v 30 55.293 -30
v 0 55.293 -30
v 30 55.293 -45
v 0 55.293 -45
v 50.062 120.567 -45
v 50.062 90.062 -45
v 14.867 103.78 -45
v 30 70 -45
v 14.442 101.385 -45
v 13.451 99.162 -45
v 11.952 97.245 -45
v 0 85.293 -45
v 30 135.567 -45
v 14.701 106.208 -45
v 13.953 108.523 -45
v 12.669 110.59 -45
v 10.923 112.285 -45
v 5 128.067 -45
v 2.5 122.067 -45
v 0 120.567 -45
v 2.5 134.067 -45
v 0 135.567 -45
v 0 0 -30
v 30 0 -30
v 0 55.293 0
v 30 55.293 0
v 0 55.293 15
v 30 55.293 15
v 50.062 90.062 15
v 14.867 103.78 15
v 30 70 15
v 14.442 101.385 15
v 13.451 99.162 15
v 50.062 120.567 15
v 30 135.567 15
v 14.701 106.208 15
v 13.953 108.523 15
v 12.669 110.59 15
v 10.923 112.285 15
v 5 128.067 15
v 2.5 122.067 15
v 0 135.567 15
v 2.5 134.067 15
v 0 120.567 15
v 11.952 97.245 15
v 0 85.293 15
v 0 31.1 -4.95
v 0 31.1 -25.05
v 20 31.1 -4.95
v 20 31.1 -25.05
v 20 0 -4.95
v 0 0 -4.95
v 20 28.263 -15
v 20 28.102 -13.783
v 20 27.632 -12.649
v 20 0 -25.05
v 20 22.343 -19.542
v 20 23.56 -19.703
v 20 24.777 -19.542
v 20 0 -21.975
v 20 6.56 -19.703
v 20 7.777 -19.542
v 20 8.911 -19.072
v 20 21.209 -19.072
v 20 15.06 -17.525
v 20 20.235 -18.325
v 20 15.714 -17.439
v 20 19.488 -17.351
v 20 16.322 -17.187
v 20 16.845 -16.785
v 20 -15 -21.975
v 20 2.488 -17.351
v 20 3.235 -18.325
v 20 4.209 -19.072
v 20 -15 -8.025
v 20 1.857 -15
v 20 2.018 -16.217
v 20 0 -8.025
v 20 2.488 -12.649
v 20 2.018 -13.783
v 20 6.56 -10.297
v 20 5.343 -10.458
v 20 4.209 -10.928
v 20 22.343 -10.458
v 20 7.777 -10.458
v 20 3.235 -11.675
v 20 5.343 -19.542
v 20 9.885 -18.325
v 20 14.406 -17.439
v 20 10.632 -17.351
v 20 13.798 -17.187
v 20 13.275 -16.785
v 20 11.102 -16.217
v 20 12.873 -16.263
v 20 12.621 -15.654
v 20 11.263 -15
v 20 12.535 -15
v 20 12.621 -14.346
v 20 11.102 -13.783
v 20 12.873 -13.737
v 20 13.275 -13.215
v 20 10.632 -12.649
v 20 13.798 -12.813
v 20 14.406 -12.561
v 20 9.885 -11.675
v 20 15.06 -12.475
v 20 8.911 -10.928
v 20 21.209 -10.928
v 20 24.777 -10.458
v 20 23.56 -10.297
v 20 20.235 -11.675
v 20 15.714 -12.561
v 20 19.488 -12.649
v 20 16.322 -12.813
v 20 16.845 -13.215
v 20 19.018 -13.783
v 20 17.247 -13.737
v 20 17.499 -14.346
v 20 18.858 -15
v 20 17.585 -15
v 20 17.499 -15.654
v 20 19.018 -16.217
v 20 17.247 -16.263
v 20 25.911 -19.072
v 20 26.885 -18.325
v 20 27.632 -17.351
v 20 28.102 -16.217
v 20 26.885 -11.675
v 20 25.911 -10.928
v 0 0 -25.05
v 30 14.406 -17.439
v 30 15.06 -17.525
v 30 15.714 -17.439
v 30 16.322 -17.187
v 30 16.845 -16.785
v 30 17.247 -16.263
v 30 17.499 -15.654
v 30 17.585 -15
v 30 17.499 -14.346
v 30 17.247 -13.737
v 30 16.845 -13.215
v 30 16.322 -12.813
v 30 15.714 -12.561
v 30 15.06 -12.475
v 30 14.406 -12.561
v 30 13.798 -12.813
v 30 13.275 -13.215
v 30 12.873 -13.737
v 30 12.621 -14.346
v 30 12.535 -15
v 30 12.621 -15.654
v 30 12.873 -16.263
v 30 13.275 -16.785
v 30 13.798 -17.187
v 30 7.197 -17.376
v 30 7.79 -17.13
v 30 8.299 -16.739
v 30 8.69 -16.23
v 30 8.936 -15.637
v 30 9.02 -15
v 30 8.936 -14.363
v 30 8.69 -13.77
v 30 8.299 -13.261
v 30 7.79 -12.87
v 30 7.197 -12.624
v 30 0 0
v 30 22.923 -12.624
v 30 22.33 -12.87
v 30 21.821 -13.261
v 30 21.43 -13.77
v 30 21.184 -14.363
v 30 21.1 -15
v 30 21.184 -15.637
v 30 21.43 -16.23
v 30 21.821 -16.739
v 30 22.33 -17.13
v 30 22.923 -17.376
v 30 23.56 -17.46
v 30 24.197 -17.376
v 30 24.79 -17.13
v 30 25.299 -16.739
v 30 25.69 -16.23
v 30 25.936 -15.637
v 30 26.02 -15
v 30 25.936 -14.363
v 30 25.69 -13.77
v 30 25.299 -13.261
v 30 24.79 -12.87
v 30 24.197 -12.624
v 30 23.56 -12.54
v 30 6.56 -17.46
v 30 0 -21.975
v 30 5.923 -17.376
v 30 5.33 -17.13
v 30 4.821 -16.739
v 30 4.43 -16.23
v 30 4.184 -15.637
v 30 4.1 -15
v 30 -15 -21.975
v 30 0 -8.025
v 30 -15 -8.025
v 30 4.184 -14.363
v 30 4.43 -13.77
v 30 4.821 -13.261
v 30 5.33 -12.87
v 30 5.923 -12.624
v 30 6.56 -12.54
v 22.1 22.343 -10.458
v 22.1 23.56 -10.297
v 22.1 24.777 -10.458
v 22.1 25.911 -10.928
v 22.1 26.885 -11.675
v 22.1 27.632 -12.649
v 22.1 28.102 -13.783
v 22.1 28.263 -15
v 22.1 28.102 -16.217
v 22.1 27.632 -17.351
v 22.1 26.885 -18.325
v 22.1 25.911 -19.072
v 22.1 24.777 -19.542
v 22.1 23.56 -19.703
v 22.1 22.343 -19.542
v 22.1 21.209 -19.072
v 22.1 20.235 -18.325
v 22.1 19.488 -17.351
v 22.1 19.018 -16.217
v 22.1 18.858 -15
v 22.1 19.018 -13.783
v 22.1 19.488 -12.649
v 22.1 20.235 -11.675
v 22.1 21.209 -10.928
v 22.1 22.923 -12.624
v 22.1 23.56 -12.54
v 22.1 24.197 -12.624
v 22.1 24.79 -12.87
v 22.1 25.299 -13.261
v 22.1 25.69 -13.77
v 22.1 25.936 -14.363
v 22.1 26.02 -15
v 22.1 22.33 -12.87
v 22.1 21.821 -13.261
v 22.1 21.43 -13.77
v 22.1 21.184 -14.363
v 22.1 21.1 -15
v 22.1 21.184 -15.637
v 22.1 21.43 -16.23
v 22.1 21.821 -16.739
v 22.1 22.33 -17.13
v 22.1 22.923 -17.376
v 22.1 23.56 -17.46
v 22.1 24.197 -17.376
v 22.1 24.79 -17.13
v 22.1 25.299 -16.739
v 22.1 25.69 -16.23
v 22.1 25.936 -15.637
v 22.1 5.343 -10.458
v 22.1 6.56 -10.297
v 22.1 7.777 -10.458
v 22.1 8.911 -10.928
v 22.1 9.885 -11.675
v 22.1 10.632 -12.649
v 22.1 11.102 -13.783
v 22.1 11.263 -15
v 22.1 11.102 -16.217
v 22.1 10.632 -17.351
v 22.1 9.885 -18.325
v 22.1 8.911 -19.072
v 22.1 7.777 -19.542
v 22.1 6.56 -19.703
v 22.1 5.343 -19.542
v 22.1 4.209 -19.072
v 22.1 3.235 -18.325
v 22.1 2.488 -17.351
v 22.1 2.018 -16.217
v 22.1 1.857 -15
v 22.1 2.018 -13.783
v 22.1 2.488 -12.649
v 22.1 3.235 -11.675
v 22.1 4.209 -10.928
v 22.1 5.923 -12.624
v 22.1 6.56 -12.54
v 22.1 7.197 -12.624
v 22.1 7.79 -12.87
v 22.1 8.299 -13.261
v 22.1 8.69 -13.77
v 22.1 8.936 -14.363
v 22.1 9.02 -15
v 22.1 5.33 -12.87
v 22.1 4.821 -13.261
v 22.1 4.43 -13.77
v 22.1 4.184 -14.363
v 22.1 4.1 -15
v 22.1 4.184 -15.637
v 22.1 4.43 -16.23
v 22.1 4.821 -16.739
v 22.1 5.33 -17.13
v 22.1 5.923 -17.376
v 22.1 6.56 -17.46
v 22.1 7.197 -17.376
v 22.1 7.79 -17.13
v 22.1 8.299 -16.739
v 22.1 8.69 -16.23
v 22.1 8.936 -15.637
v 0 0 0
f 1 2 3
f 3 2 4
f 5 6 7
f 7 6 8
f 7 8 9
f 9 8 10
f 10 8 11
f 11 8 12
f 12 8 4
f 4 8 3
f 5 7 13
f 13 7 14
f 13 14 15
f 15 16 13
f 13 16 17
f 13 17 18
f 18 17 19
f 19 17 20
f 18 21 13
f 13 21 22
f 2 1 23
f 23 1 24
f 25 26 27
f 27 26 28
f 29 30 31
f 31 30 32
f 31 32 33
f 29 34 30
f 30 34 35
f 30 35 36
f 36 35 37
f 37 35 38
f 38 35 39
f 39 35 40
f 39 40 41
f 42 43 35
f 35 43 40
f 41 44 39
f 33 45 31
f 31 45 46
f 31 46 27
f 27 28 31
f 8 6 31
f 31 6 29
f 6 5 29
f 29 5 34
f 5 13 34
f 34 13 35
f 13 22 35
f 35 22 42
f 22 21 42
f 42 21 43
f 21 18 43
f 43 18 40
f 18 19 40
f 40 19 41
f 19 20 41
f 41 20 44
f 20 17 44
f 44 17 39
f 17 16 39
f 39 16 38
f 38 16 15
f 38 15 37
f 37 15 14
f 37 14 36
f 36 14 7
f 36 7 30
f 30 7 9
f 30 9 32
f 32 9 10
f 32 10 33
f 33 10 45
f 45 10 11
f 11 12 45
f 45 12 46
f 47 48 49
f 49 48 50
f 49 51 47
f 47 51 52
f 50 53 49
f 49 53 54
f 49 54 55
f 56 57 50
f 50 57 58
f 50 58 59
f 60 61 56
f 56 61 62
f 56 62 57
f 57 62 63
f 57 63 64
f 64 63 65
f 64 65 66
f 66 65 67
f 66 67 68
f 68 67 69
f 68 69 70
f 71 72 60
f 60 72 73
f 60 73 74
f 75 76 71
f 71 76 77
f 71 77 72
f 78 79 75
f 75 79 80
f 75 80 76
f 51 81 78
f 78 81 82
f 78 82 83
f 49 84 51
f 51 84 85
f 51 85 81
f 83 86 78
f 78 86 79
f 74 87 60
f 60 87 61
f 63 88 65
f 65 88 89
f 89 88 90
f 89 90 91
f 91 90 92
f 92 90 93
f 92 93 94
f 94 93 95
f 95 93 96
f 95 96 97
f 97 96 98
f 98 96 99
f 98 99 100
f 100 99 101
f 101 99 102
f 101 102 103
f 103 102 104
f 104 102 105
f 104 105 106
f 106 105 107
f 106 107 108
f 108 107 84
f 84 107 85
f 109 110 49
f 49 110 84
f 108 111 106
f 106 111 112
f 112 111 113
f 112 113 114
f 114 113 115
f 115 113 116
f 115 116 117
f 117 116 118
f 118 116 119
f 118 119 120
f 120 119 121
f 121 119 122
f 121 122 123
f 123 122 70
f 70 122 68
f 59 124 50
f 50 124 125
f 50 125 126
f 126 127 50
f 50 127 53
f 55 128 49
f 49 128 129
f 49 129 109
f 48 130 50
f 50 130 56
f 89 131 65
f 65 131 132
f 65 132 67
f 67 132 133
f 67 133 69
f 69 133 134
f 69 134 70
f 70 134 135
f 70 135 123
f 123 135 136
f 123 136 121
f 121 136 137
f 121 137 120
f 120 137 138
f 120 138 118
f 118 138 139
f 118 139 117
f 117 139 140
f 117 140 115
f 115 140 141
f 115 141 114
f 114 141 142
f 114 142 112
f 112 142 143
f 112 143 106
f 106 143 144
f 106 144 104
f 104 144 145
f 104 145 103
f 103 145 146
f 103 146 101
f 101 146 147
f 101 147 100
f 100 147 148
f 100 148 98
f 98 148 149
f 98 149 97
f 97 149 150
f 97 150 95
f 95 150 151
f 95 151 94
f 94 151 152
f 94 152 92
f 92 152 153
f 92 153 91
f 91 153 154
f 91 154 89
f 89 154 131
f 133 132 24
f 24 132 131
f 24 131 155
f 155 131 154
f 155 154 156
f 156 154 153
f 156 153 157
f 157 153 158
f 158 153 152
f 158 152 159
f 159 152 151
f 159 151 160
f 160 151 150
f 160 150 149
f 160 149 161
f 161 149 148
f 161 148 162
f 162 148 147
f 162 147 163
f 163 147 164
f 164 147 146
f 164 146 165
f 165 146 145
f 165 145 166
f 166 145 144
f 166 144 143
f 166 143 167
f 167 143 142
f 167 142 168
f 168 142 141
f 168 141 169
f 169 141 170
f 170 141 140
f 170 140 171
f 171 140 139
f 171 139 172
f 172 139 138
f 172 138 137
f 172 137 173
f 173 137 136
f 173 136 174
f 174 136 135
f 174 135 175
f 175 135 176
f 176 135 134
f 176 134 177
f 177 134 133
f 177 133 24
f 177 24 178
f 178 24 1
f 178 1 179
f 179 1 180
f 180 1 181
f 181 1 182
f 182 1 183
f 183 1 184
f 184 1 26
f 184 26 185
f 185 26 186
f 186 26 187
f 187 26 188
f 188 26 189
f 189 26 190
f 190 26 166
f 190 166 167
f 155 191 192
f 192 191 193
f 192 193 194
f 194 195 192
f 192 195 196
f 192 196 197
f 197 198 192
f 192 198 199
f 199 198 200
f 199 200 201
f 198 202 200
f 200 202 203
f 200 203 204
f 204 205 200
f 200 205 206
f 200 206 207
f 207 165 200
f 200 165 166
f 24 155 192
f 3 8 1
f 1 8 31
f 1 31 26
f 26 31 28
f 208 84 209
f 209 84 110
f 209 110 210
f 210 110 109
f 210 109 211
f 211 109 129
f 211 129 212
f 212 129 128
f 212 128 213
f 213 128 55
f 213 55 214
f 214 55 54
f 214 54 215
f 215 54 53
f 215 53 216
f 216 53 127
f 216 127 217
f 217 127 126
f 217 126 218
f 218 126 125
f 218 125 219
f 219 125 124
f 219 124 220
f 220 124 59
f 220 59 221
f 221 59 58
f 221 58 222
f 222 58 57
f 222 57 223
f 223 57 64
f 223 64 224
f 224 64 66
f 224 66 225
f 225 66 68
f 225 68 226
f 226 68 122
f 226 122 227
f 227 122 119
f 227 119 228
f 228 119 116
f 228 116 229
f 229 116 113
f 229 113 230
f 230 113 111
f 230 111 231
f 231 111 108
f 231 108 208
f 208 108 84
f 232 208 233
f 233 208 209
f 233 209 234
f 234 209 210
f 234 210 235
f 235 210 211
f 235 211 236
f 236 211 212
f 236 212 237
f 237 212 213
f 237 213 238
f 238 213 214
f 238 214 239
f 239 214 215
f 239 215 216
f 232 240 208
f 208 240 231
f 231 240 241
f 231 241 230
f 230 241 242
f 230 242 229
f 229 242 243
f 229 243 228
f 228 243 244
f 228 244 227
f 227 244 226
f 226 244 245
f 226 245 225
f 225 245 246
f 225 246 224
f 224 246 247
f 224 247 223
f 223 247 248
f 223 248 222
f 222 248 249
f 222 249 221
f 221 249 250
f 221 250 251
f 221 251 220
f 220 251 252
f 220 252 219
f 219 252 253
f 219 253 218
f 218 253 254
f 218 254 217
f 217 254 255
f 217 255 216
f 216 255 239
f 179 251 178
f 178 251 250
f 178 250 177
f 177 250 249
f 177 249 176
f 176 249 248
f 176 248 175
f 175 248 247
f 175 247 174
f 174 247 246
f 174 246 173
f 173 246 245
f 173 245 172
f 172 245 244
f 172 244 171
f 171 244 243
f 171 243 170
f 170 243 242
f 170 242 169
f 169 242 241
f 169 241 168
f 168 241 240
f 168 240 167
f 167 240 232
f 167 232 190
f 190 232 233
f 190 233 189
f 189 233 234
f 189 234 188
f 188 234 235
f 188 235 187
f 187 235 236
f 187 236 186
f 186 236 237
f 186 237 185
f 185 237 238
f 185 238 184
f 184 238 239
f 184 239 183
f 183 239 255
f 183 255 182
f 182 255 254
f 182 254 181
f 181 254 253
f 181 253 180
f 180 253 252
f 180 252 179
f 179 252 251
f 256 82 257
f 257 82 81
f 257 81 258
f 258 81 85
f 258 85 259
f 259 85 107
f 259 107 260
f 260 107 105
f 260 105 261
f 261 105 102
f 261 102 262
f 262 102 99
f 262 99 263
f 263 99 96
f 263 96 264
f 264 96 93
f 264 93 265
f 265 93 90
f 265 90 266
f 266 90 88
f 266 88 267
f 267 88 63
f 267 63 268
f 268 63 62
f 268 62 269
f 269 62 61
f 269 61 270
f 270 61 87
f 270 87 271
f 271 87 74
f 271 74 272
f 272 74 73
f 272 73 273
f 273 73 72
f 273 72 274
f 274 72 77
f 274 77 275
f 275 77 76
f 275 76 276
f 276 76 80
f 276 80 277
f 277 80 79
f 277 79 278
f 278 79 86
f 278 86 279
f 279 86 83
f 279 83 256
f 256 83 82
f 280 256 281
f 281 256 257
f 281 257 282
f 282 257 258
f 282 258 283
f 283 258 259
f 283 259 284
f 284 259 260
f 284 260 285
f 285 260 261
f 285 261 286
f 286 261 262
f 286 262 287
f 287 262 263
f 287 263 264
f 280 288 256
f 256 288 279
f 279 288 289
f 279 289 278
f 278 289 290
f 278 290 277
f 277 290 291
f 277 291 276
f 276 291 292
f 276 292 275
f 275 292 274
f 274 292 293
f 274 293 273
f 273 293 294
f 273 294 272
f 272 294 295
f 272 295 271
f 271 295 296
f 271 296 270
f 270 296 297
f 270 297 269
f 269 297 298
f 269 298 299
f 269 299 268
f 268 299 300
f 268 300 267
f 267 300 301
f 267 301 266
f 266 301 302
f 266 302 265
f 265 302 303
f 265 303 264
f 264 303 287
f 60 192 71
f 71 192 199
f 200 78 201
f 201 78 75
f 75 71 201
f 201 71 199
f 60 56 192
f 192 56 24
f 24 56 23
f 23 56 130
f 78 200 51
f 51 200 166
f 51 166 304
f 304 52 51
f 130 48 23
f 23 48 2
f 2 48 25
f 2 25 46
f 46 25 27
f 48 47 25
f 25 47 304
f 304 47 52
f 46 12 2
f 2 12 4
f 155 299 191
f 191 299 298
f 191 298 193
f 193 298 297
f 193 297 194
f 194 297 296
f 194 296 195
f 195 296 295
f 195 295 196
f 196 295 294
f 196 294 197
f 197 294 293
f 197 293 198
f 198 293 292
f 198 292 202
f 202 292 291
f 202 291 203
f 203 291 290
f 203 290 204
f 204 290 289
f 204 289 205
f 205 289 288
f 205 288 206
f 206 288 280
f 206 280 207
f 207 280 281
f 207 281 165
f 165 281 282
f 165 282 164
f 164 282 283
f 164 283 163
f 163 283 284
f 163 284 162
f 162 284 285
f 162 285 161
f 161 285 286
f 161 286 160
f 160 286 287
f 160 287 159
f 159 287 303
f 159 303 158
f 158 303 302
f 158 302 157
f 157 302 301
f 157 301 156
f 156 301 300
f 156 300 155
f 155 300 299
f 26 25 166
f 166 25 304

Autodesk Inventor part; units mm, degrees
ref_plane "YZ Plane" through (0, 0, 0) normal (1, 0, 0) x (0, 1, 0)
ref_plane "XZ Plane" through (0, 0, 0) normal (0, 1, 0) x (-1, 0, 0)
sketch "Sketch1" plane through (0, 0, 0) normal (0, 0, 1) x (1, 0, 0)
  line L0 (0, 0) -> (25, 0)
  line L1 (25, 0) -> (25, 40)
  line L2 (25, 40) -> (0, 40)
  line L3 (0, 40) -> (0, 0)
  dimension "d1" = 25
  dimension "d2" = 40
  dimension "d3" = 25
extrude "Extrusion1" add sketch "Sketch1" against normal blind 30
sketch "Sketch2" plane through (25, 0, 0) normal (1, 0, 0) x (0, 0, -1)
  line L0 (0, 0) -> (30, 0) projected
  circle A0 centre (15, 6.56) radius 2.46
extrude "Extrusion2" cut sketch "Sketch2" against normal blind 30
sketch "Sketch3" plane through (0, 0, 0) normal (-1, 0, 0) x (0, 0, 1)
  line L0 (0, 0) -> (-30, 0) projected
  line L1 (-25.05, 0) -> (-4.95, 0)
  line L2 (-4.95, 0) -> (-4.95, 33.12)
  line L3 (-4.95, 33.12) -> (-25.05, 33.12)
  line L4 (-25.05, 33.12) -> (-25.05, 0)
  dimension "d11" = 20.1
extrude "Extrusion3" cut sketch "Sketch3" against normal blind 20
sketch "Sketch4" plane through (0, 0, 0) normal (0, -1, 0) x (1, 0, 0)
  line L0 (20, -4.95) -> (20, -25.05) projected
  line L1 (20, -15) -> (25, -15)
  line L2 (25, 0) -> (25, -30) projected
  line L3 (20, -8.025) -> (25, -8.025)
  line L4 (25, -8.025) -> (25, -21.975)
  line L5 (25, -21.975) -> (20, -21.975)
  line L6 (20, -21.975) -> (20, -8.025)
  line L7 (20, -8.025) -> (25, -21.975) construction
  line L8 (25, -8.025) -> (20, -21.975) construction
  line L9 (25, -12.54) -> (25, -17.46) projected
  point P0 (0, 0)
  point P1 (22.5, -15)
  dimension "d14" = 13.95
extrude "Extrusion4" add sketch "Sketch4" along normal blind 15
sketch "Sketch5" plane through (20, 0, 0) normal (-1, 0, 0) x (0, 0, 1)
  circle A0 centre (-15, 6.56) radius 2.46 projected
  circle A1 centre (-15, 6.56) radius 4.7025
  circle A2 centre (-15, 6.56) radius 2.46 projected
  circle A3 centre (-15, 6.56) radius 2.46
  point P0 (0, 0)
  dimension "d17" = 9.405
extrude "Extrusion5" cut sketch "Sketch5" against normal blind 2.1
sketch "Sketch6" plane through (25, 0, 0) normal (1, 0, 0) x (0, 0, -1)
  circle A0 centre (15, 6.56) radius 4.7025 projected
  line L0 (15, 6.56) -> (15, 23.56)
  circle A1 centre (15, 23.56) radius 2.46
  point P0 (0, 0)
  dimension "d20" = 17
  dimension "d21" = 4.92
extrude "Extrusion6" cut sketch "Sketch6" against normal blind 10 contours A1
sketch "Sketch7" plane through (20, 0, 0) normal (-1, 0, 0) x (0, 0, 1)
  circle A0 centre (-15, 23.56) radius 2.46 projected
  circle A1 centre (-15, 23.56) radius 4.7025
  point P0 (0, 0)
  dimension "d24" = 9.405
extrude "Extrusion7" cut sketch "Sketch7" against normal blind 2.1
sketch "Sketch9" plane through (25, 0, 0) normal (1, 0, 0) x (0, 0, -1)
  circle A0 centre (15, 6.56) radius 2.46 projected
  circle A1 centre (15, 6.56) radius 2.46
  circle A2 centre (15, 23.56) radius 2.46 projected
  circle A3 centre (15, 23.56) radius 2.46
  line L0 (30, 40) -> (30, 0) projected
  line L1 (30, 0) -> (30, 40)
  line L2 (30, 40) -> (0, 40)
  line L3 (0, 40) -> (0, 0)
  line L4 (0, 0) -> (8.025, 0) projected
  line L5 (21.975, 0) -> (21.975, -15)
  line L6 (21.975, -15) -> (8.025, -15)
  line L7 (8.025, -15) -> (8.025, 0)
  line L8 (0, 0) -> (8.025, 0)
  line L9 (21.975, 0) -> (30, 0)
extrude "Extrusion8" add sketch "Sketch9" along normal blind 5
sketch "Sketch10" plane through (0, 40, 0) normal (0, 1, 0) x (1, 0, 0)
  line L0 (0, 30) -> (30, 30) projected
  line L1 (30, 0) -> (0, 0) projected
  line L2 (0, 30) -> (30, 30)
  line L3 (30, 30) -> (30, 0)
  line L4 (30, 0) -> (0, 0)
  line L5 (0, 0) -> (0, 30)
extrude "Extrusion9" add sketch "Sketch10" along normal blind 30
sketch "Sketch12" plane through (30, 0, 0) normal (1, 0, 0) x (0, 0, -1)
  circle A0 centre (15, 6.56) radius 2.46 projected
  line L0 (15, 6.56) -> (15, 15.06)
  circle A1 centre (15, 15.06) radius 2.525
  point P0 (0, 0)
  dimension "d31" = 8.5
  dimension "d33" = 5.05
extrude "Extrusion10" cut sketch "Sketch12" against normal blind 30 contours A1
sketch "Sketch15" plane through (0, 0, -25.05) normal (-1, 0, 0) x (0, 0, 1)
  line L0 (0, 33.12) -> (20.1, 33.12) projected
  line L1 (20.1, 33.12) -> (20.1, 0) projected
  line L2 (0, 33.12) -> (20.1, 33.12)
  line L3 (20.1, 33.12) -> (20.1, 31.1)
  line L4 (20.1, 31.1) -> (0, 31.1)
  line L5 (0, 31.1) -> (0, 33.12)
  point P0 (25.05, 0)
  dimension "d57" = 2.02
extrude "Extrusion13" add sketch "Sketch15" against normal blind 20
sketch "Sketch17" plane through (0, 0, 0) normal (0, 0, 1) x (1, 0, 0)
  line L0 (0, 70) -> (30, 70) projected
  line L1 (30, 70) -> (50.0622, 90.0622)
  line L2 (30, 70) -> (80, 70) construction
  line L3 (11.9522, 97.2454) -> (0, 85.2932)
  line L4 (0, 70) -> (0, 85.2932)
  line L5 (0, 70) -> (0, 0) projected
  line L6 (0, 70) -> (30, 70)
  line L7 (10.923, 112.2849) -> (0, 120.567)
  line L8 (2.5, 134.067) -> (0, 135.567)
  line L9 (2.5, 134.067) -> (5, 128.067)
  line L10 (2.5, 122.067) -> (0, 120.567)
  line L11 (2.5, 122.067) -> (5, 128.067)
  line L12 (50.0622, 105.3553) -> (50.0622, 120.567)
  line L13 (50.0622, 105.3553) -> (50.0622, 90.0622)
  line L14 (0, 135.567) -> (30, 135.567)
  line L15 (30, 135.567) -> (50.0622, 120.567)
  arc A0 (11.9522, 97.2454) -> (10.923, 112.2849) centre (4.8811, 104.3165) ccw
  dimension "d61" = 45
  dimension "d62" = 32.0271
  dimension "d71" = 30
  dimension "d72" = 10
extrude "Extrusion14" add sketch "Sketch17" against normal blind 30
sketch "Sketch19" plane through (0, 0, 0) normal (0, 0, 1) x (1, 0, 0)
  line L0 (30, 0) -> (30, 70) projected
  line L1 (30, 70) -> (50.0622, 90.0622) projected
  line L2 (30, 70) -> (50.0622, 90.0622)
  line L3 (50.0622, 120.567) -> (50.0622, 90.0622) projected
  line L4 (50.0622, 90.0622) -> (50.0622, 120.567)
  line L5 (30, 135.567) -> (50.0622, 120.567) projected
  line L6 (50.0622, 120.567) -> (30, 135.567)
  line L7 (0, 135.567) -> (30, 135.567) projected
  line L8 (30, 135.567) -> (0, 135.567)
  line L9 (5, 128.067) -> (2.5, 134.067) projected
  line L10 (0, 135.567) -> (2.5, 134.067)
  line L11 (2.5, 134.067) -> (5, 128.067)
  line L12 (2.5, 122.067) -> (5, 128.067) projected
  line L13 (5, 128.067) -> (2.5, 122.067)
  line L14 (0, 120.567) -> (2.5, 122.067) projected
  line L15 (2.5, 122.067) -> (0, 120.567)
  line L16 (10.923, 112.2849) -> (0, 120.567) projected
  line L17 (0, 120.567) -> (10.923, 112.2849)
  line L18 (11.9522, 97.2454) -> (0, 85.2932) projected
  line L19 (11.9522, 97.2454) -> (0, 85.2932)
  line L20 (0, 85.2932) -> (0, 55.2932)
  line L21 (0, 0) -> (0, 85.2932) projected
  line L22 (0, 55.2932) -> (30, 55.2932)
  line L23 (30, 55.2932) -> (30, 70)
  arc A0 (11.9522, 97.2454) -> (10.923, 112.2849) centre (4.8811, 104.3165) ccw
  dimension "d75" = 30
  dimension "d76" = 30
extrude "Extrusion15" add sketch "Sketch19" along normal blind 15
ref_plane "Work Plane1" through (0, 0, -15) normal (0, 0, 1) x (1, 0, 0)
mirror "Mirror1" about plane through (0, 0, -15) normal (0, 0, 1) of "Extrusion15"
properties part number "rec_c_12mm_x_60mm"
